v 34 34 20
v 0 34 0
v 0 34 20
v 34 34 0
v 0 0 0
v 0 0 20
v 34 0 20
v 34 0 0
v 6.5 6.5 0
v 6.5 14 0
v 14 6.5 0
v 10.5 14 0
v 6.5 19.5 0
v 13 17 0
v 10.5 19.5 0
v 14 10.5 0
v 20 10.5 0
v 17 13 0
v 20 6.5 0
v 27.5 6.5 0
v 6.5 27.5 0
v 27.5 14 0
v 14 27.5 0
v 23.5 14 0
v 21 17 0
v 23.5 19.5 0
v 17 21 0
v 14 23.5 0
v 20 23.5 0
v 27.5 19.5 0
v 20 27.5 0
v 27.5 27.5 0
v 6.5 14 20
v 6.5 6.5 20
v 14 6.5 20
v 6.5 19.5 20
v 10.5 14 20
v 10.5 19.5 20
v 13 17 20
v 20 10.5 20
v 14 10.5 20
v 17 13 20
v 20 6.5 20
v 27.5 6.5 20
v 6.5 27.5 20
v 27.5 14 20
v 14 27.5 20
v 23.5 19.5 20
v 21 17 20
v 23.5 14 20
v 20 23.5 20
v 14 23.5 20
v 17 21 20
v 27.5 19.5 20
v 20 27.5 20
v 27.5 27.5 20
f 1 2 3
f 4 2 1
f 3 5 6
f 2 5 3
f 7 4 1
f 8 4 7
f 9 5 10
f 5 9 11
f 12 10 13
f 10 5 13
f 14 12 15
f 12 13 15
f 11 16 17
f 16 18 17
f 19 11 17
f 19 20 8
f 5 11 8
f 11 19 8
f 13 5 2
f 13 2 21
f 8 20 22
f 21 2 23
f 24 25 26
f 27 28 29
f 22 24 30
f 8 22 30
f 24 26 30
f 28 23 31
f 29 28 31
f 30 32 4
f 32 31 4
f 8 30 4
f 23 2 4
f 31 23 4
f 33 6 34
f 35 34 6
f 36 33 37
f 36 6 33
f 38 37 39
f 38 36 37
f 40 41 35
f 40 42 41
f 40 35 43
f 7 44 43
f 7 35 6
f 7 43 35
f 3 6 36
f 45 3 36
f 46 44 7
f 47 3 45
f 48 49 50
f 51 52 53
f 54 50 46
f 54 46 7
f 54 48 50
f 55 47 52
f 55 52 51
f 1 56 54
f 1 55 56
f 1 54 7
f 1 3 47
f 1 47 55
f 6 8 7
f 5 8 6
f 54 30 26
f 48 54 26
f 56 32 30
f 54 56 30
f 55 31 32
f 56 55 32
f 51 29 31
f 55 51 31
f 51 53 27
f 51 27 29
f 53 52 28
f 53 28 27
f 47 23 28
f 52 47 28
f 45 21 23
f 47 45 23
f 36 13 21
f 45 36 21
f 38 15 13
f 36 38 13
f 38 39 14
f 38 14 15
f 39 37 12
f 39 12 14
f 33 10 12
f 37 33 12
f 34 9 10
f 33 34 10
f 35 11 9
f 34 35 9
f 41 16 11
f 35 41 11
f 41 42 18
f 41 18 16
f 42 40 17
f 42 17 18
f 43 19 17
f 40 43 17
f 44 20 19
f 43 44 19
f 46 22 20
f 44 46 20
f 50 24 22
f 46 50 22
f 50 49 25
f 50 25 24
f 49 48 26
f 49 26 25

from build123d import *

# Parameters (mm, degrees)
SKETCH_W     = 34
SKETCH_H     = 34
PAD_DEPTH    = 20
POCKET_DEPTH = 20


with BuildPart() as part:
    # Sketch → Pad (new body)
    with BuildSketch(Plane.XY):
        with Locations((17, 17)):
            Rectangle(SKETCH_W, SKETCH_H)
    extrude(amount=PAD_DEPTH)

    # Sketch001 (on Face6 of Pad) → Pocket (cut)
    with BuildSketch(Plane.XY.offset(20)):
        Polygon((6.5, 27.5), (14, 27.5), (14, 23.5), (17, 21), (20, 23.5), (20, 27.5), (27.5, 27.5), (27.5, 19.5), (23.5, 19.5), (21, 17), (23.5, 14), (27.5, 14), (27.5, 6.5), (20, 6.5), (20, 10.5), (17, 13), (14, 10.5), (14, 6.5), (6.5, 6.5), (6.5, 14), (10.5, 14), (13, 17), (10.5, 19.5), (6.5, 19.5), align=None)
    extrude(amount=-POCKET_DEPTH, mode=Mode.SUBTRACT)


solid = part.part
